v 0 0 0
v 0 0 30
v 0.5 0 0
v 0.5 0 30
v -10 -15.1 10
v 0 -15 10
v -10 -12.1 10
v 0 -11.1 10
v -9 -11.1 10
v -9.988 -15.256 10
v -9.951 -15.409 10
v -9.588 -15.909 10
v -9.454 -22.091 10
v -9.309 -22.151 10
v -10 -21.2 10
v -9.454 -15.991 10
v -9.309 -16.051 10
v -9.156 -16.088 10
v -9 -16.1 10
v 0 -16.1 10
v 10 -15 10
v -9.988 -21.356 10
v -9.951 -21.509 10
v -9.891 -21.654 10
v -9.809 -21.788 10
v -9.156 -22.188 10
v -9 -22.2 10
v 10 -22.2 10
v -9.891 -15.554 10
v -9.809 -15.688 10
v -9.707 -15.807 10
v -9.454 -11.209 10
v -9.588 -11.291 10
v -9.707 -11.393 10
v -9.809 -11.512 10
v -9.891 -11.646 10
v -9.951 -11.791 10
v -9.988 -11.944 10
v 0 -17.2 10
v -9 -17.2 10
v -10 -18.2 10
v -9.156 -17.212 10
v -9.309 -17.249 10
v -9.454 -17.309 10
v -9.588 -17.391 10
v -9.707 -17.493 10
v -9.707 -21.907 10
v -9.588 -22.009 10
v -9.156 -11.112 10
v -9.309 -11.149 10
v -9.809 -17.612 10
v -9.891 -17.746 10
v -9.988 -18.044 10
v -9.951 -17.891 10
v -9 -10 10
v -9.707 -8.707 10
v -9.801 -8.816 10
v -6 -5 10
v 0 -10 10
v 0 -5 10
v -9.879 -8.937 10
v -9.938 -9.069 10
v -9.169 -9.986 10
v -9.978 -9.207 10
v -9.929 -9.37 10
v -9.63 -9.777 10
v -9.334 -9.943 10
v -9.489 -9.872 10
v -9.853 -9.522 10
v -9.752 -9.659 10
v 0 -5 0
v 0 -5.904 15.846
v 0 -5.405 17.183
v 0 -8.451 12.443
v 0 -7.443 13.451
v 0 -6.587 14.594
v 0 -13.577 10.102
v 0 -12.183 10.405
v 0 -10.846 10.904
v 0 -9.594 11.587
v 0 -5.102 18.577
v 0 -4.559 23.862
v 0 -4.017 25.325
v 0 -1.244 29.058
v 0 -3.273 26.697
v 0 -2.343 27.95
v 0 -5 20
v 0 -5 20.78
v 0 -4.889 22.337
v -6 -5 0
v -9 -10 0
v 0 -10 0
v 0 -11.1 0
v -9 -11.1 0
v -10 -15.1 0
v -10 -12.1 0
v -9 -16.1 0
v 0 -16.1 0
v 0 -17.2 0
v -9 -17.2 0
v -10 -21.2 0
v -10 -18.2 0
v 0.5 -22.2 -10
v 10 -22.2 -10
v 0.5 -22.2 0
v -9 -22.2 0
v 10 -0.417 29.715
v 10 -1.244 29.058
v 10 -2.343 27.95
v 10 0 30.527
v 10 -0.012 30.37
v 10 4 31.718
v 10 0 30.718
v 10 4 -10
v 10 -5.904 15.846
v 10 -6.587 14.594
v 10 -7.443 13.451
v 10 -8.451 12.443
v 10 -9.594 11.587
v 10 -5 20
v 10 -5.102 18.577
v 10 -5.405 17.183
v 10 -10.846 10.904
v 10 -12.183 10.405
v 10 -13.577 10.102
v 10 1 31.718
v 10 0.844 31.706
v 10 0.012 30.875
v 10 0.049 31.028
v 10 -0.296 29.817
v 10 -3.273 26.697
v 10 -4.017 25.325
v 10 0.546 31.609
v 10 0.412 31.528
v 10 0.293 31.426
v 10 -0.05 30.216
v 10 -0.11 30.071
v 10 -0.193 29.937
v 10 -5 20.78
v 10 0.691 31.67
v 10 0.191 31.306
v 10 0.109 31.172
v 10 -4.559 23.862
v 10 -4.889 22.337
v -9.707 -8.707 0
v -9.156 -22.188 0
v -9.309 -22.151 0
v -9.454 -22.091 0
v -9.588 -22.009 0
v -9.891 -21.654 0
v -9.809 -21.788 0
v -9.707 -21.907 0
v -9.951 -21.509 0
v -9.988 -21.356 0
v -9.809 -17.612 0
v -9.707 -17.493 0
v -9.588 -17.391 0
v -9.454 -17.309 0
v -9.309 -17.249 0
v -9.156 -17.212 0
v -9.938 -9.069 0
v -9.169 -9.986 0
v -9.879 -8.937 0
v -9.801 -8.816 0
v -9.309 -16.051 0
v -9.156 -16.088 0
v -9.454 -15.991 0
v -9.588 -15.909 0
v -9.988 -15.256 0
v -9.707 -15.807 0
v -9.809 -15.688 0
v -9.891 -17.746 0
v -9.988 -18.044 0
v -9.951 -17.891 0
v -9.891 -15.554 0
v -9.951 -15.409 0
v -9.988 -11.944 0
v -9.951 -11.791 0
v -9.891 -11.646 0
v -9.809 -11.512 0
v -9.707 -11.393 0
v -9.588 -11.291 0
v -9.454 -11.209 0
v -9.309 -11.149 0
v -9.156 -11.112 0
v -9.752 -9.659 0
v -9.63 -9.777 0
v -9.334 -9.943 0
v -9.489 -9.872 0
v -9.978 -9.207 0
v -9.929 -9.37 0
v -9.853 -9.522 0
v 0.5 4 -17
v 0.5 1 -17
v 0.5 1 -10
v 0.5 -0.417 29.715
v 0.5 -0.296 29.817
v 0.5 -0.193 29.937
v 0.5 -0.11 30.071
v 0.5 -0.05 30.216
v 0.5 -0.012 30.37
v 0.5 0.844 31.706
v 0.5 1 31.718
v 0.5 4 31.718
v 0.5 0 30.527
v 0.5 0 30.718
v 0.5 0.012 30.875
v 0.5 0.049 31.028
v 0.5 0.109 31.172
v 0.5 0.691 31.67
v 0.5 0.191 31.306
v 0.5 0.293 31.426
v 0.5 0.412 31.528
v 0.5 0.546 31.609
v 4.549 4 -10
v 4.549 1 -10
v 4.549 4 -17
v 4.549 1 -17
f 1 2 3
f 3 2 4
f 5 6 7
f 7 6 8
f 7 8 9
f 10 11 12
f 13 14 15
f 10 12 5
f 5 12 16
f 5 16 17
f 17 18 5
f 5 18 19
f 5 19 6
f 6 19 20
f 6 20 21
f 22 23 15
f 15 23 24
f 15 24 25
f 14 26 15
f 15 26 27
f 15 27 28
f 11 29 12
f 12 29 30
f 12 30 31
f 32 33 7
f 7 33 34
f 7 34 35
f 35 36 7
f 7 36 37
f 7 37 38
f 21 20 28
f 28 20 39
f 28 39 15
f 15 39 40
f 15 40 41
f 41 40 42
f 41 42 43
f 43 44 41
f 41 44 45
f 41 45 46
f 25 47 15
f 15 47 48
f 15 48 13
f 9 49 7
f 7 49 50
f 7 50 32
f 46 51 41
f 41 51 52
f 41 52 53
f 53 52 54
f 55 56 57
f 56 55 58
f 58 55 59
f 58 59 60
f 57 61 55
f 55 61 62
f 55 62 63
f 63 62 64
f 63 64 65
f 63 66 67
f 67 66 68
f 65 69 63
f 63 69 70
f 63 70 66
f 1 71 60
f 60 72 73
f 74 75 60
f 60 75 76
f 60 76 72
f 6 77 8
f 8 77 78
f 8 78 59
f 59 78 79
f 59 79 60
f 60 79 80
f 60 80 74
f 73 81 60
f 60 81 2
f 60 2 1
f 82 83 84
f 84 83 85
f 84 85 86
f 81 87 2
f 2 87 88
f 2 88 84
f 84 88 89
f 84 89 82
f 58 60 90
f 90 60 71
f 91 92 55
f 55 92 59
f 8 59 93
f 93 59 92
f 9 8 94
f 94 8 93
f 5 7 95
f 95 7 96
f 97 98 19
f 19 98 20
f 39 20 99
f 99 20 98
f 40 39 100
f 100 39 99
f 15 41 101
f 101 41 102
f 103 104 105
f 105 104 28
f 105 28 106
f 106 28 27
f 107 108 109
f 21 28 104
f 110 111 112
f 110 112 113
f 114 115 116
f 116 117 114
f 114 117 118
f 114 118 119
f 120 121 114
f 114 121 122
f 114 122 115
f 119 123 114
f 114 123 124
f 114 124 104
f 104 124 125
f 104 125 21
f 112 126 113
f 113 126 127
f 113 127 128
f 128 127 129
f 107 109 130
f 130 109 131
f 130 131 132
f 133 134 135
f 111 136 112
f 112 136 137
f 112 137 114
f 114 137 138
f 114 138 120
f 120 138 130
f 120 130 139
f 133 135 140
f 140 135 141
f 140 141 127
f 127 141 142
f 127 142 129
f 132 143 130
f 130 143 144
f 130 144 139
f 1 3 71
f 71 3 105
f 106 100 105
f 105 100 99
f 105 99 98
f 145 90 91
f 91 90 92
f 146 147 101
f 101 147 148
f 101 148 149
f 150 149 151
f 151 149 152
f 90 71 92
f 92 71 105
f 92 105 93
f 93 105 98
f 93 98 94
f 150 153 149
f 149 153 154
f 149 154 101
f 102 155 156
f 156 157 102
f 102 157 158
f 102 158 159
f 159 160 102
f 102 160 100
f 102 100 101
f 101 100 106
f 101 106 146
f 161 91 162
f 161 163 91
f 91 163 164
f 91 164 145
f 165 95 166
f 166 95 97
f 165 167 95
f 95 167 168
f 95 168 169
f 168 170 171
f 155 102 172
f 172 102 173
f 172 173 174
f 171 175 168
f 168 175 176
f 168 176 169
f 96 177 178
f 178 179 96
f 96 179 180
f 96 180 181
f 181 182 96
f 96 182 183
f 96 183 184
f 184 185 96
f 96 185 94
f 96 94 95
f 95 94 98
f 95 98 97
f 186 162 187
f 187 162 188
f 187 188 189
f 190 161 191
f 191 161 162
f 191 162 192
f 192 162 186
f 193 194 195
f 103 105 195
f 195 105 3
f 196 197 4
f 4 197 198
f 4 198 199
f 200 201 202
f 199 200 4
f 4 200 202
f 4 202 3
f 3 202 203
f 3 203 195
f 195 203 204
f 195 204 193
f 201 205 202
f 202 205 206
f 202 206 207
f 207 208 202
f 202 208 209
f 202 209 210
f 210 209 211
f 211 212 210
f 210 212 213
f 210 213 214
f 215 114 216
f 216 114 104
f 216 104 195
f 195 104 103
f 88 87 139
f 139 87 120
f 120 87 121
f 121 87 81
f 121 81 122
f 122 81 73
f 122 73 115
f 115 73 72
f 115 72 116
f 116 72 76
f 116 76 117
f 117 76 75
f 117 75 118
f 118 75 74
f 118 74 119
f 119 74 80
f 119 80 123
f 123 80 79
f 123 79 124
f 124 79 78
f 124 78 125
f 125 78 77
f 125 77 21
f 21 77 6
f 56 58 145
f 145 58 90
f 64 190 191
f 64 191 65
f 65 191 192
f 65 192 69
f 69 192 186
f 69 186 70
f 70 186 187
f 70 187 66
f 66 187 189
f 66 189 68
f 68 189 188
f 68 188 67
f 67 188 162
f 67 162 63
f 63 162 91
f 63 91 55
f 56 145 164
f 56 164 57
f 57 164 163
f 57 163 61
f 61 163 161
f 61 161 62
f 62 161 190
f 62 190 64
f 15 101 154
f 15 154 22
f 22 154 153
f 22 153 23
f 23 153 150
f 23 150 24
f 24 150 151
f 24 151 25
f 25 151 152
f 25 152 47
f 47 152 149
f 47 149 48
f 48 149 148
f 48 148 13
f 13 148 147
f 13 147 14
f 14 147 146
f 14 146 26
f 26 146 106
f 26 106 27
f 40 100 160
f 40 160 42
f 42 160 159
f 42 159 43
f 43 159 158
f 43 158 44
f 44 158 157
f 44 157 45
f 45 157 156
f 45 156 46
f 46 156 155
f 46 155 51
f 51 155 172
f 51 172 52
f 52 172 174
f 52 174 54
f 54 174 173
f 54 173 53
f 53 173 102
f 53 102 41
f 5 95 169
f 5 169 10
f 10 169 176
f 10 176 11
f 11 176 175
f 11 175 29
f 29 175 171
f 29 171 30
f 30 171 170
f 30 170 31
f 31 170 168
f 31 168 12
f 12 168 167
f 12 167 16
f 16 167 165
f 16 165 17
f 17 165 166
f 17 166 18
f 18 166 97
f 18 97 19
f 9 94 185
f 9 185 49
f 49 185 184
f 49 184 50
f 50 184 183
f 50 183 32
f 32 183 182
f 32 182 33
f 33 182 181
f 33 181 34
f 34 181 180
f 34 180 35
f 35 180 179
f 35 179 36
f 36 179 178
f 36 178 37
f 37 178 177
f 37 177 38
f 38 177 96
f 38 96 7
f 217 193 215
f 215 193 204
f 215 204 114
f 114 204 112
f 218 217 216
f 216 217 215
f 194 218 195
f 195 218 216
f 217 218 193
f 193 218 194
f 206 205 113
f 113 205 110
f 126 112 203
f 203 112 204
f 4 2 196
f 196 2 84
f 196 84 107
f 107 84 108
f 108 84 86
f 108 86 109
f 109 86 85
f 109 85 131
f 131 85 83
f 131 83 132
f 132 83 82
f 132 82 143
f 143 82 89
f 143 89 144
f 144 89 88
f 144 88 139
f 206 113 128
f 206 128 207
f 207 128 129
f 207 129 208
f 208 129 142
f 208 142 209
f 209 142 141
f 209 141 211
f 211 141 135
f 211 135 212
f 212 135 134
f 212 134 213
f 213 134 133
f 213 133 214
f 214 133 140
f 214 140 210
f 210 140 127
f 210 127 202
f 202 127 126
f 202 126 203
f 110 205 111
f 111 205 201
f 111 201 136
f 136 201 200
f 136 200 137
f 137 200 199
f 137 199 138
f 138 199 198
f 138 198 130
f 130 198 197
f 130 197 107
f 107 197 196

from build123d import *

# Parameters (mm, degrees)
BOSS_EXTRU_1_DEPTH = 10
ESQUISSE2_W        = 9.5
ESQUISSE2_H        = 22.2
BOSS_EXTRU_2_DEPTH = 10
ESQUISSE3_W        = 10
ESQUISSE3_H        = 5
BOSS_EXTRU_3_DEPTH = 20
CONG_1_R           = 10
CHANFREIN1_SIZE    = 4
CONG_3_R           = 1
ESQUISSE5_W        = 9.5
ESQUISSE5_H        = 4.718482058
BOSS_EXTRU_5_DEPTH = 4
ESQUISSE6_W        = 4.048947881
ESQUISSE6_H        = 3
BOSS_EXTRU_6_DEPTH = 7
ESQUISSE7_W        = 9.5
ESQUISSE7_H        = 4
BOSS_EXTRU_7_DEPTH = 37
CONG_4_R           = 11
CONG_6_R           = 1


with BuildPart() as part:
    # Esquisse1 → Boss.-Extru.1 (new body)
    with BuildSketch(Plane.XY):
        Polygon((0, 0), (10, 0), (10, -22.2), (-10, -22.2), (-10, -17.2), (0, -17.2), (0, -16.1), (-10, -16.1), (-10, -11.1), (0, -11.1), (0, -10), (-10, -10), (-10, -5), (0, -5), align=None)
    extrude(amount=BOSS_EXTRU_1_DEPTH)

    # Esquisse2 → Boss.-Extru.2 (add)
    with BuildSketch(Plane(origin=(0, 0, 0), x_dir=(-1, 0, 0), z_dir=(0, 0, -1))):
        with Locations((-5.25, -11.1)):
            Rectangle(ESQUISSE2_W, ESQUISSE2_H)
    extrude(amount=BOSS_EXTRU_2_DEPTH)

    # Esquisse3 → Boss.-Extru.3 (add)
    with BuildSketch(Plane.XY.offset(10)):
        with Locations((5, -2.5)):
            Rectangle(ESQUISSE3_W, ESQUISSE3_H)
    extrude(amount=BOSS_EXTRU_3_DEPTH)

    # Congé1
    # the kernel refuses this fillet: 10 mm, written as the material it adds along each edge
    with BuildSketch(Plane(origin=(0, -5, 10), x_dir=(0, -1, 0), z_dir=(1, 0, 0))) as cong_1_piece_1:
        with BuildLine():
            CenterArc((CONG_1_R, -CONG_1_R), CONG_1_R, 90, 90)
            Line((0, -CONG_1_R), (0, 0))
            Line((0, 0), (CONG_1_R, 0))
        make_face()
    extrude(amount=10)

    # Chanfrein1
    chanfrein1_edges = [part.edges().sort_by_distance(p)[0] for p in [
        (-10, -5, 5),
    ]]
    chamfer(chanfrein1_edges, length=CHANFREIN1_SIZE)

    # Congé3
    # the kernel refuses this fillet: 1 mm, written as the material it takes off along each edge
    with BuildSketch(Plane(origin=(-10, -22.2, -2.5), x_dir=(1, 0, 0), z_dir=(0, 0, 1)), Plane(origin=(-10, -17.2, -2.5), x_dir=(0, -1, 0), z_dir=(0, 0, 1))) as cong_3_piece_1:
        with BuildLine():
            CenterArc((CONG_3_R, CONG_3_R), CONG_3_R, 180, 90)
            Line((0, CONG_3_R), (0, 0))
            Line((0, 0), (CONG_3_R, 0))
        make_face()
    extrude(amount=15, mode=Mode.SUBTRACT)
    with BuildSketch(Plane(origin=(-10, -16.1, -2.5), x_dir=(0, 1, 0), z_dir=(0, 0, 1)), Plane(origin=(-10, -11.1, -2.5), x_dir=(1, 0, 0), z_dir=(0, 0, 1)), Plane(origin=(-10, -10, -2.5), x_dir=(0, 1, 0), z_dir=(0, 0, 1))) as cong_3_piece_2:
        with BuildLine():
            CenterArc((CONG_3_R, -CONG_3_R), CONG_3_R, 90, 90)
            Line((0, -CONG_3_R), (0, 0))
            Line((0, 0), (CONG_3_R, 0))
        make_face()
    extrude(amount=15, mode=Mode.SUBTRACT)
    with BuildSketch(Plane(origin=(-10, -9, -1.035533906), x_dir=(0, -1, 0), z_dir=(0, 0, 1))) as cong_3_piece_3:
        with BuildLine():
            CenterArc((CONG_3_R * 0.414213562373, CONG_3_R), CONG_3_R, 225, 45)
            Line((-CONG_3_R * 0.292893218813, CONG_3_R * 0.292893218813), (0, 0))
            Line((0, 0), (CONG_3_R * 0.414213562373, 0))
        make_face()
    extrude(amount=12.071067812, mode=Mode.SUBTRACT)

    # Esquisse5 → Boss.-Extru.5 (add)
    with BuildSketch(Plane(origin=(0, 0, 0), x_dir=(1, 0, 0), z_dir=(0, 1, 0))):
        with Locations((5.25, 7.640758971)):
            Rectangle(ESQUISSE5_W, ESQUISSE5_H)
    extrude(amount=BOSS_EXTRU_5_DEPTH)

    # Esquisse6 → Boss.-Extru.6 (add)
    with BuildSketch(Plane(origin=(0, 0, -10), x_dir=(-1, 0, 0), z_dir=(0, 0, -1))):
        with Locations((-2.524473941, 2.5)):
            Rectangle(ESQUISSE6_W, ESQUISSE6_H)
    extrude(amount=BOSS_EXTRU_6_DEPTH)

    # Esquisse7 → Boss.-Extru.7 (add)
    with BuildSketch(Plane.XY.offset(-5.281517942)):
        with Locations((5.25, 2)):
            Rectangle(ESQUISSE7_W, ESQUISSE7_H)
    extrude(amount=BOSS_EXTRU_7_DEPTH)

    # Congé4
    # the kernel refuses this fillet: 11 mm, written as the material it takes off along each edge
    with BuildSketch(Plane(origin=(-23.048861143, -5, 30), x_dir=(0, 1.0, -1.1723955140032709e-12), z_dir=(1, 0, 0))) as cong_4_piece_1:
        with BuildLine():
            CenterArc((11, -9.219544457), CONG_4_R, 123.055731151, 56.944268849)
            Line((0, -9.219544457), (-0.22, -9.219544457))
            Line((-0.22, -9.219544457), (-0.22, 0))
            Line((-0.22, 0), (0, 0.22))
            ThreePointArc((0, 0.22), (2.5, 0.22), (4.88, 0.184390889))
            Line((4.88, 0.184390889), (5, 0))
        make_face()
    extrude(amount=56.097722287, mode=Mode.SUBTRACT)

    # Congé6
    cong_6_edges = [part.edges().sort_by_distance(p)[0] for p in [
        (5.25, 0, 31.718482058),
        (5.25, 0, 30),
    ]]
    fillet(cong_6_edges, radius=CONG_6_R)


solid = part.part
